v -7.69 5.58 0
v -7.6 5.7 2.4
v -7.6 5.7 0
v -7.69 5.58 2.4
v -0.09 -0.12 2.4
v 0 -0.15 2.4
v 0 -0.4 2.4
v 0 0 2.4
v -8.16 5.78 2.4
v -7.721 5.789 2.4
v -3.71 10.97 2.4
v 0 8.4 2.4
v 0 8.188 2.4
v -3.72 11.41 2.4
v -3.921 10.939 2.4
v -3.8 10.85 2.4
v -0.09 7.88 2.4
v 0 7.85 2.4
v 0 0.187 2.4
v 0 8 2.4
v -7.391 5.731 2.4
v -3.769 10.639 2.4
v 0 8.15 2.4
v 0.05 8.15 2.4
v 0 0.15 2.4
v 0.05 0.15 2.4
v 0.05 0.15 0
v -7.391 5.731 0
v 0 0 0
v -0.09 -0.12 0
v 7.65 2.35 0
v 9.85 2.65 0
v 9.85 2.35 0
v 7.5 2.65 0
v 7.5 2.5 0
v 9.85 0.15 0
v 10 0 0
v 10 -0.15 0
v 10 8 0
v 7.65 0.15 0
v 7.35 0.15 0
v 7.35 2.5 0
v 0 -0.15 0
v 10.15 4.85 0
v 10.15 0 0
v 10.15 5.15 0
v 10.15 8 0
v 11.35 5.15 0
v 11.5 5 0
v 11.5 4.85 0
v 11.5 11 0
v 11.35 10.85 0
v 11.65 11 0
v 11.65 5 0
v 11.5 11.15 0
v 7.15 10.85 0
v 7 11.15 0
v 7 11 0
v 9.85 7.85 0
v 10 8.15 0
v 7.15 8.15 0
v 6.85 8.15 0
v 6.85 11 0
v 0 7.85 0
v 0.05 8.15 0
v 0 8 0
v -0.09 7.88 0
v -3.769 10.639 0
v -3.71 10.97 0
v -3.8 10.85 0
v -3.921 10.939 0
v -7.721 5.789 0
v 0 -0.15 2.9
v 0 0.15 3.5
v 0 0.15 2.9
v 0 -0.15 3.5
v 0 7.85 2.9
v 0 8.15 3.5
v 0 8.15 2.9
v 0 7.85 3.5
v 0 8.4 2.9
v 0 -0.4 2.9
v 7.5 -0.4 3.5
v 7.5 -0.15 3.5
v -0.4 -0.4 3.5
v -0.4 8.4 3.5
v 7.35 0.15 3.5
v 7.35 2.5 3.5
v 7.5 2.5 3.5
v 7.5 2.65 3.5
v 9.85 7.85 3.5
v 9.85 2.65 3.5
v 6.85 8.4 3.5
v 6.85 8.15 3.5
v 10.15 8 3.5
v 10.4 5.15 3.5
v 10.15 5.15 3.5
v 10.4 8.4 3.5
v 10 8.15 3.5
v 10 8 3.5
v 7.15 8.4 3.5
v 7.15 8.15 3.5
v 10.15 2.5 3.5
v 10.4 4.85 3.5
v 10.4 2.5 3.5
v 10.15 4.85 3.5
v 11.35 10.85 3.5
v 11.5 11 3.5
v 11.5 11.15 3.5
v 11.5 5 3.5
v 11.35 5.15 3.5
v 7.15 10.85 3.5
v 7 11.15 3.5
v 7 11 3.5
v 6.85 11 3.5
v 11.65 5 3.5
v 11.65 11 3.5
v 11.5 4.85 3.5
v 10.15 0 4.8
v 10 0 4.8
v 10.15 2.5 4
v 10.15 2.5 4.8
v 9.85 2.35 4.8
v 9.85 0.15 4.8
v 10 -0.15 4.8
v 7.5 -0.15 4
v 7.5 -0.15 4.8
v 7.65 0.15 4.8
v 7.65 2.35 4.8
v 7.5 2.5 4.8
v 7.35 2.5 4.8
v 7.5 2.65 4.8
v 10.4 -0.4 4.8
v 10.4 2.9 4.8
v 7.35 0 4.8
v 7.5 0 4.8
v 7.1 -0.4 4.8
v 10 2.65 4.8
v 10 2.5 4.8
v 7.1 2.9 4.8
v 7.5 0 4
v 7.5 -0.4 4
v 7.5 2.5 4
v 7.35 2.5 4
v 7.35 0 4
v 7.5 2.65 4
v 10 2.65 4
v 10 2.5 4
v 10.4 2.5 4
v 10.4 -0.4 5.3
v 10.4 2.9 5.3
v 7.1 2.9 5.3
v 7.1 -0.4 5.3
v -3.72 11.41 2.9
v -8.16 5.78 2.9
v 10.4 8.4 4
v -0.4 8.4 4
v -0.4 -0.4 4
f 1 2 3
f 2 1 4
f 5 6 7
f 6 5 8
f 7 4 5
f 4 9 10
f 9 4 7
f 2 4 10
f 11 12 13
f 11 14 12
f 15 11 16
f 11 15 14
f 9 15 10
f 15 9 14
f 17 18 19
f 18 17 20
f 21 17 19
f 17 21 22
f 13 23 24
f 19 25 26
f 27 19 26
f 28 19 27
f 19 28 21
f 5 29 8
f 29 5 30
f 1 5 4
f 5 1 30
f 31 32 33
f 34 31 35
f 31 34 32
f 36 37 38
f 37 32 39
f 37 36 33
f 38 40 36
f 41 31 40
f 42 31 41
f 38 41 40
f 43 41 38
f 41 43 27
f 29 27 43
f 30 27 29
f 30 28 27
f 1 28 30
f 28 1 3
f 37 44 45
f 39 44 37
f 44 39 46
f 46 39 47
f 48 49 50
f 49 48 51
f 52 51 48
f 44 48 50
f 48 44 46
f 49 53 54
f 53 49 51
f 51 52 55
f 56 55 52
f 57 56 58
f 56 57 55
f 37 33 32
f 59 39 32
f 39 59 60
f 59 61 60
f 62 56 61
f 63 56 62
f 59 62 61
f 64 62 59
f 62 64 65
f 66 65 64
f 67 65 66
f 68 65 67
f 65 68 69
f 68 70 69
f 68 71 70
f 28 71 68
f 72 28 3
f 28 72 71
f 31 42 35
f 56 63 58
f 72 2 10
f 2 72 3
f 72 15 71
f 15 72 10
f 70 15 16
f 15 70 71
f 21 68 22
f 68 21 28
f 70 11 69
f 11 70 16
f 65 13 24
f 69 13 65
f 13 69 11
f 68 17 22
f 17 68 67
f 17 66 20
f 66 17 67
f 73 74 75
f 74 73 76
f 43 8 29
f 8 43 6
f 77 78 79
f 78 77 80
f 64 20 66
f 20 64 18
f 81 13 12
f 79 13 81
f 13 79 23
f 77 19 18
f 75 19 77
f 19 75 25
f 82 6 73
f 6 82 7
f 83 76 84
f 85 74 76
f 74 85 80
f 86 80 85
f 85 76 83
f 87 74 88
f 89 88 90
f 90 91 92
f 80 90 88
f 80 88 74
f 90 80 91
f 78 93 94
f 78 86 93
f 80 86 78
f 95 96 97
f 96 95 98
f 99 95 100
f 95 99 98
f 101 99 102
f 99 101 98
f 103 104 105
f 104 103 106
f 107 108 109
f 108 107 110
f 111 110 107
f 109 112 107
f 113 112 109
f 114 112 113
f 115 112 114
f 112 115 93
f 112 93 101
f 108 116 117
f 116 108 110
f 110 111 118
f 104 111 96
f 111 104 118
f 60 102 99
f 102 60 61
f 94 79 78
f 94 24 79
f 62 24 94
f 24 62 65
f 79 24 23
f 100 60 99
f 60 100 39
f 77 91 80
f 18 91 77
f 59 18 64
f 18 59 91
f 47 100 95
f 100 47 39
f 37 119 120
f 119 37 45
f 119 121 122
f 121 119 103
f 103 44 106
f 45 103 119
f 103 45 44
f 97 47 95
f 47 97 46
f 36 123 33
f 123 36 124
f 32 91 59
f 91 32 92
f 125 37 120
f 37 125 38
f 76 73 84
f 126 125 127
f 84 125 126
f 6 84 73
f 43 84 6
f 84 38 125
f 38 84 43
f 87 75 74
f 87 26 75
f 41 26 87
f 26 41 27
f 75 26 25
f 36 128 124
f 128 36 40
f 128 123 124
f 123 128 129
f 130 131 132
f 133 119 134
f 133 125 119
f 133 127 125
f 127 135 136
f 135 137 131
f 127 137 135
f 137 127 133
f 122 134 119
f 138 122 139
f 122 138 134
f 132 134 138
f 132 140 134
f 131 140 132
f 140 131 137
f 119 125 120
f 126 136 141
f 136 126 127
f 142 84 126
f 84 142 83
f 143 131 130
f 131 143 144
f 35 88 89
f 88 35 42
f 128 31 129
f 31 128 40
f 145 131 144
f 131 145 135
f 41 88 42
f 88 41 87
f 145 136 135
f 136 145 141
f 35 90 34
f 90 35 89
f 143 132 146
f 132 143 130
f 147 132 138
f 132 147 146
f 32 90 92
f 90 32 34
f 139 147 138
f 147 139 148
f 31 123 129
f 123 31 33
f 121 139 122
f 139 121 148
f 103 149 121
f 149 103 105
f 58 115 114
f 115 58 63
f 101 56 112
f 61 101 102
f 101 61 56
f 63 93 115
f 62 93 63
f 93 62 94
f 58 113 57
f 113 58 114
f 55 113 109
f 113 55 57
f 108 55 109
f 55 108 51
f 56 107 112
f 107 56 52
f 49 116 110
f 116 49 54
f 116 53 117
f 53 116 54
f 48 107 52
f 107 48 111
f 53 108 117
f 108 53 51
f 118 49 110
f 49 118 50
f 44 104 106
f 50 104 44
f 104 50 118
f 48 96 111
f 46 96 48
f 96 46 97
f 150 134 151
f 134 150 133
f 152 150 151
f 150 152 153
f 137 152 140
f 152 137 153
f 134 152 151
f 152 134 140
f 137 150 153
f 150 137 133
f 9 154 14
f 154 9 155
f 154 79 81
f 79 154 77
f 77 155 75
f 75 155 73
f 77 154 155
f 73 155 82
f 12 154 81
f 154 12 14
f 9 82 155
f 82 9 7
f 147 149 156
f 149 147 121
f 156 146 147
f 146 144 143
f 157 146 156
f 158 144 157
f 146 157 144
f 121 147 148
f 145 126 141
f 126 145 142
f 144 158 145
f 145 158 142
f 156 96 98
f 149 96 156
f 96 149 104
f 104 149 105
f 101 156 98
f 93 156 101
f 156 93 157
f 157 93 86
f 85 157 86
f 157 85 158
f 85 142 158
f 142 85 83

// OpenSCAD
// file: lib/measurement.scad
// Written in 2015 by Marius Kintel <marius@kintel.net>
// Additions 2020 by Mokshasoft AB
//
// To the extent possible under law, the author(s) have dedicated all
// copyright and related and neighboring rights to this software to the
// public domain worldwide. This software is distributed without any
// warranty.
//
// You should have received a copy of the CC0 Public Domain
// Dedication along with this software.
// If not, see <http://creativecommons.org/publicdomain/zero/1.0/>.

// Area of a triangle with the 3rd vertex in the origin
function triarea(v0, v1) = cross(v0, v1) / 2;

// Area of a polygon using the Shoelace formula
function area(vertices) =
  let (areas = [let (num=len(vertices))
                  for (i=[0:num-1]) 
                    triarea(vertices[i], vertices[(i+1)%num])
               ])
      sum(areas);

// Recursive helper function: Sums all values in a list.
// In this case, sum all partial areas into the final area.
function sum(values,s=0) =
  s == len(values) - 1 ? values[s] : values[s] + sum(values,s+1);

function length(p1, p2) =
    sqrt(pow(p1[0] - p2[0], 2) + pow(p1[1] - p2[1], 2));

function vlength(p) =
  let ( num  = len(p)
      , lens = [for (i=[0:num-2]) length(p[i], p[i + 1])]
      )
    sum(lens);

function angle(p1, pc, p2) =
  let ( v1 = p1 - pc
      , v2 = p2 - pc
      , n1 = v1/norm(v1)
      , n2 = v2/norm(v2)
      )
    acos(n1*n2);
// file: lib/element.scad
// constants
gr = 1.61803; // golden ration

function inbetween(p1, p2, procent = 50) =
    let (x_diff = p2[0] - p1[0])
    let (y_diff = p2[1] - p1[1])
    [ p1[0] + x_diff*procent/100
    , p1[1] + y_diff*procent/100
    ];

// create a wall
module wall(p1, p2, h, thickness = 300) {
    let (x_diff = p2[0] - p1[0])
    let (y_diff = p2[1] - p1[1])
    let (len = sqrt(pow(x_diff, 2) +
                    pow(y_diff, 2)))
    if (h != 0)
    {
        linear_extrude(height = h)
        translate(p1)
        rotate(atan2(y_diff, x_diff))
        translate([0, -thickness/2])
        square([len, thickness]);
    }
    else
    {
        translate(p1)
        rotate(atan2(y_diff, x_diff))
        translate([0, -thickness/2])
        square([len, thickness]);
    }
}

module window(p1, p2, pos, height, sizex, sizey, wt = 300) {
    assert(0 < pos && pos < 100);
    x_diff = p2[0] - p1[0];
    y_diff = p2[1] - p1[1];
    len = sqrt(pow(x_diff, 2) +
               pow(y_diff, 2));
    difference () {
        children();
        // create the hole for the window
        translate([0,0,height])
        translate(p1 + pos*[x_diff, y_diff]/100)
        rotate(atan2(y_diff, x_diff) + 90, [0,0,1])
        cube([4*wt, sizex, sizey], center = true);
    }
    // add the glass to the window
    color_glass()
    translate([0,0,height])
    translate(p1 + pos*[x_diff, y_diff]/100)
    rotate(atan2(y_diff, x_diff) + 90, [0,0,1])
    translate([wt/2, 0, 0])
    cube([wt/2, sizex, sizey], center = true);
}

module beam(p1, p2, r = 0.4) {
    vector = [ p2[0] - p1[0]
             , p2[1] - p1[1]
             , p2[2] - p1[2]
             ];
    distance = length3D(p1, p2);
    translate(vector/2 + p1)
    rotate([0, 0, atan2(vector[1], vector[0])]) // rotationXY
    rotate([0, atan2(sqrt(pow(vector[0], 2) + pow(vector[1], 2)), vector[2]), 0]) // rotationZX
    cylinder(h = distance, r = r, center = true);
}

module color_lawn() {
    color("LawnGreen")
    children();
}

module color_outer_wall() {
    color("MediumSpringGreen")
    children();
}

module color_inner_wall() {
    color("Ivory")
    children();
}

module color_roof() {
    color("Lavender")
    children();
}

module color_floor() {
    color("Wheat")
    children();
}

module color_logs() {
    color("Ivory")
    children();
}

module color_glass() {
    color("azure", 0.25)
    children();
}

// Regular polygons

// calculate the coordinates for the corners
function point(i, r, corners) =
   let (vz = 360/corners/2)
   let (angle=i*(360/corners) - vz)
   [ r*cos(angle)
   , r*sin(angle)
   ];

module octagon(r, h, corners) {
    coords=[for (i = [0:corners-1]) point(i, r, corners)];
    linear_extrude(height = h)
    polygon(coords);
}

module octawalls(r, h, wt, corners) {
    difference () {
        octagon(r, h, corners);
        translate([0, 0, -wt])
        octagon(r - wt, h + 2*wt, corners);
    }
}
// main file
include <lib/element.scad>
include <lib/measurement.scad>

// configure the rendering
show_floor = true;
show_roof = true;
show_lawn = false;

// Parameters
a1 = atan(3/4);
ll = 9.5;
l2 = 10;
roh = 0.4; // roof over-hang

// 3D
room_hl = 2.4;  // room height low
room_hh = 3.5;  // room height high
room_ht = 4.8;  // height in tea room

module w(p1, p2, h, thickness = 0.300) {
    wall(p1, p2, h, thickness)
    children();
}

// Corners of the outer walls of house
p1 = [0, 0];
p2 = p1 + [-ll*cos(a1), ll*sin(a1)];
p4 = [0, 8];
p3 = p4 + 0.5*[-ll*cos(a1), ll*sin(a1)];
p6 = [l2, 0];
p5 = [l2, 8];

// Winter garden
ws = 3;
w1 = p5;
w2 = p5 - [ws, 0];
w3 = w2 + [0, ws];
w4 = w3 + [1.5*ws, 0];
w5 = w4 - [0, 2*ws];
w6 = w5 - [0.5*ws, 0];

// Tea room
ts = 2.5;
t1 = p6;
t2 = t1 - [ts, 0];
t3 = t2 + [0, ts];
t4 = t3 + [ts, 0];

// Points on the top of the outer wall
function walltop(c, h) =
    concat(p1, h);

// Lawn
if (show_lawn) {
    color_lawn()
    translate([0, 0, -0.5])
    cube([4*s, 4*s, 0.04], center = true);
}

module hus() {
    color_outer_wall()
    union() {
        // Outer walls
        w(p1, p2, room_hl);
        w(p2, p3, room_hl);
        w(p3, p4, room_hl);
        w(p4, p5, room_hh);
        w(p5, p6, room_hh);
        w(p6, p1, room_hh);
        // Tea room
        w(t1, t2, room_ht);
        w(t2, t3, room_ht);
        w(t3, t4, room_ht);
        w(t4, t1, room_ht);        
    }
    color_glass()
    union() {
        w(w1, w2, room_hh);
        w(w2, w3, room_hh);
        w(w3, w4, room_hh);
        w(w4, w5, room_hh);
        w(w5, w6, room_hh);
    }
    // Tea roof
    color_roof()
    translate([-roh + (l2 - ts), -roh, room_ht])
    cube([ts + 2*roh, ts + 2*roh, 0.5]);
    // Lower roof
    let (l = roh*[cos(a1), sin(a1)])
    let (w = roh*[cos(a1 + 90), sin(a1 + 90)])
    color_roof()
    translate([0, 0, room_hl])
    linear_extrude(0.5)
    polygon([p1 - [0, roh], p2 - l + w, p3 + l + w, p4 + [0, roh]]);
    // higher roof
    color_roof()
    translate([0, 0, room_hh])
    linear_extrude(0.5)
    polygon([p1 - [roh, roh], p4 + [-roh, roh], p5 + [roh, roh], p6 + [roh, ts], p6 + [-ts, ts], p6 - [ts, roh]]);
}

hus();
